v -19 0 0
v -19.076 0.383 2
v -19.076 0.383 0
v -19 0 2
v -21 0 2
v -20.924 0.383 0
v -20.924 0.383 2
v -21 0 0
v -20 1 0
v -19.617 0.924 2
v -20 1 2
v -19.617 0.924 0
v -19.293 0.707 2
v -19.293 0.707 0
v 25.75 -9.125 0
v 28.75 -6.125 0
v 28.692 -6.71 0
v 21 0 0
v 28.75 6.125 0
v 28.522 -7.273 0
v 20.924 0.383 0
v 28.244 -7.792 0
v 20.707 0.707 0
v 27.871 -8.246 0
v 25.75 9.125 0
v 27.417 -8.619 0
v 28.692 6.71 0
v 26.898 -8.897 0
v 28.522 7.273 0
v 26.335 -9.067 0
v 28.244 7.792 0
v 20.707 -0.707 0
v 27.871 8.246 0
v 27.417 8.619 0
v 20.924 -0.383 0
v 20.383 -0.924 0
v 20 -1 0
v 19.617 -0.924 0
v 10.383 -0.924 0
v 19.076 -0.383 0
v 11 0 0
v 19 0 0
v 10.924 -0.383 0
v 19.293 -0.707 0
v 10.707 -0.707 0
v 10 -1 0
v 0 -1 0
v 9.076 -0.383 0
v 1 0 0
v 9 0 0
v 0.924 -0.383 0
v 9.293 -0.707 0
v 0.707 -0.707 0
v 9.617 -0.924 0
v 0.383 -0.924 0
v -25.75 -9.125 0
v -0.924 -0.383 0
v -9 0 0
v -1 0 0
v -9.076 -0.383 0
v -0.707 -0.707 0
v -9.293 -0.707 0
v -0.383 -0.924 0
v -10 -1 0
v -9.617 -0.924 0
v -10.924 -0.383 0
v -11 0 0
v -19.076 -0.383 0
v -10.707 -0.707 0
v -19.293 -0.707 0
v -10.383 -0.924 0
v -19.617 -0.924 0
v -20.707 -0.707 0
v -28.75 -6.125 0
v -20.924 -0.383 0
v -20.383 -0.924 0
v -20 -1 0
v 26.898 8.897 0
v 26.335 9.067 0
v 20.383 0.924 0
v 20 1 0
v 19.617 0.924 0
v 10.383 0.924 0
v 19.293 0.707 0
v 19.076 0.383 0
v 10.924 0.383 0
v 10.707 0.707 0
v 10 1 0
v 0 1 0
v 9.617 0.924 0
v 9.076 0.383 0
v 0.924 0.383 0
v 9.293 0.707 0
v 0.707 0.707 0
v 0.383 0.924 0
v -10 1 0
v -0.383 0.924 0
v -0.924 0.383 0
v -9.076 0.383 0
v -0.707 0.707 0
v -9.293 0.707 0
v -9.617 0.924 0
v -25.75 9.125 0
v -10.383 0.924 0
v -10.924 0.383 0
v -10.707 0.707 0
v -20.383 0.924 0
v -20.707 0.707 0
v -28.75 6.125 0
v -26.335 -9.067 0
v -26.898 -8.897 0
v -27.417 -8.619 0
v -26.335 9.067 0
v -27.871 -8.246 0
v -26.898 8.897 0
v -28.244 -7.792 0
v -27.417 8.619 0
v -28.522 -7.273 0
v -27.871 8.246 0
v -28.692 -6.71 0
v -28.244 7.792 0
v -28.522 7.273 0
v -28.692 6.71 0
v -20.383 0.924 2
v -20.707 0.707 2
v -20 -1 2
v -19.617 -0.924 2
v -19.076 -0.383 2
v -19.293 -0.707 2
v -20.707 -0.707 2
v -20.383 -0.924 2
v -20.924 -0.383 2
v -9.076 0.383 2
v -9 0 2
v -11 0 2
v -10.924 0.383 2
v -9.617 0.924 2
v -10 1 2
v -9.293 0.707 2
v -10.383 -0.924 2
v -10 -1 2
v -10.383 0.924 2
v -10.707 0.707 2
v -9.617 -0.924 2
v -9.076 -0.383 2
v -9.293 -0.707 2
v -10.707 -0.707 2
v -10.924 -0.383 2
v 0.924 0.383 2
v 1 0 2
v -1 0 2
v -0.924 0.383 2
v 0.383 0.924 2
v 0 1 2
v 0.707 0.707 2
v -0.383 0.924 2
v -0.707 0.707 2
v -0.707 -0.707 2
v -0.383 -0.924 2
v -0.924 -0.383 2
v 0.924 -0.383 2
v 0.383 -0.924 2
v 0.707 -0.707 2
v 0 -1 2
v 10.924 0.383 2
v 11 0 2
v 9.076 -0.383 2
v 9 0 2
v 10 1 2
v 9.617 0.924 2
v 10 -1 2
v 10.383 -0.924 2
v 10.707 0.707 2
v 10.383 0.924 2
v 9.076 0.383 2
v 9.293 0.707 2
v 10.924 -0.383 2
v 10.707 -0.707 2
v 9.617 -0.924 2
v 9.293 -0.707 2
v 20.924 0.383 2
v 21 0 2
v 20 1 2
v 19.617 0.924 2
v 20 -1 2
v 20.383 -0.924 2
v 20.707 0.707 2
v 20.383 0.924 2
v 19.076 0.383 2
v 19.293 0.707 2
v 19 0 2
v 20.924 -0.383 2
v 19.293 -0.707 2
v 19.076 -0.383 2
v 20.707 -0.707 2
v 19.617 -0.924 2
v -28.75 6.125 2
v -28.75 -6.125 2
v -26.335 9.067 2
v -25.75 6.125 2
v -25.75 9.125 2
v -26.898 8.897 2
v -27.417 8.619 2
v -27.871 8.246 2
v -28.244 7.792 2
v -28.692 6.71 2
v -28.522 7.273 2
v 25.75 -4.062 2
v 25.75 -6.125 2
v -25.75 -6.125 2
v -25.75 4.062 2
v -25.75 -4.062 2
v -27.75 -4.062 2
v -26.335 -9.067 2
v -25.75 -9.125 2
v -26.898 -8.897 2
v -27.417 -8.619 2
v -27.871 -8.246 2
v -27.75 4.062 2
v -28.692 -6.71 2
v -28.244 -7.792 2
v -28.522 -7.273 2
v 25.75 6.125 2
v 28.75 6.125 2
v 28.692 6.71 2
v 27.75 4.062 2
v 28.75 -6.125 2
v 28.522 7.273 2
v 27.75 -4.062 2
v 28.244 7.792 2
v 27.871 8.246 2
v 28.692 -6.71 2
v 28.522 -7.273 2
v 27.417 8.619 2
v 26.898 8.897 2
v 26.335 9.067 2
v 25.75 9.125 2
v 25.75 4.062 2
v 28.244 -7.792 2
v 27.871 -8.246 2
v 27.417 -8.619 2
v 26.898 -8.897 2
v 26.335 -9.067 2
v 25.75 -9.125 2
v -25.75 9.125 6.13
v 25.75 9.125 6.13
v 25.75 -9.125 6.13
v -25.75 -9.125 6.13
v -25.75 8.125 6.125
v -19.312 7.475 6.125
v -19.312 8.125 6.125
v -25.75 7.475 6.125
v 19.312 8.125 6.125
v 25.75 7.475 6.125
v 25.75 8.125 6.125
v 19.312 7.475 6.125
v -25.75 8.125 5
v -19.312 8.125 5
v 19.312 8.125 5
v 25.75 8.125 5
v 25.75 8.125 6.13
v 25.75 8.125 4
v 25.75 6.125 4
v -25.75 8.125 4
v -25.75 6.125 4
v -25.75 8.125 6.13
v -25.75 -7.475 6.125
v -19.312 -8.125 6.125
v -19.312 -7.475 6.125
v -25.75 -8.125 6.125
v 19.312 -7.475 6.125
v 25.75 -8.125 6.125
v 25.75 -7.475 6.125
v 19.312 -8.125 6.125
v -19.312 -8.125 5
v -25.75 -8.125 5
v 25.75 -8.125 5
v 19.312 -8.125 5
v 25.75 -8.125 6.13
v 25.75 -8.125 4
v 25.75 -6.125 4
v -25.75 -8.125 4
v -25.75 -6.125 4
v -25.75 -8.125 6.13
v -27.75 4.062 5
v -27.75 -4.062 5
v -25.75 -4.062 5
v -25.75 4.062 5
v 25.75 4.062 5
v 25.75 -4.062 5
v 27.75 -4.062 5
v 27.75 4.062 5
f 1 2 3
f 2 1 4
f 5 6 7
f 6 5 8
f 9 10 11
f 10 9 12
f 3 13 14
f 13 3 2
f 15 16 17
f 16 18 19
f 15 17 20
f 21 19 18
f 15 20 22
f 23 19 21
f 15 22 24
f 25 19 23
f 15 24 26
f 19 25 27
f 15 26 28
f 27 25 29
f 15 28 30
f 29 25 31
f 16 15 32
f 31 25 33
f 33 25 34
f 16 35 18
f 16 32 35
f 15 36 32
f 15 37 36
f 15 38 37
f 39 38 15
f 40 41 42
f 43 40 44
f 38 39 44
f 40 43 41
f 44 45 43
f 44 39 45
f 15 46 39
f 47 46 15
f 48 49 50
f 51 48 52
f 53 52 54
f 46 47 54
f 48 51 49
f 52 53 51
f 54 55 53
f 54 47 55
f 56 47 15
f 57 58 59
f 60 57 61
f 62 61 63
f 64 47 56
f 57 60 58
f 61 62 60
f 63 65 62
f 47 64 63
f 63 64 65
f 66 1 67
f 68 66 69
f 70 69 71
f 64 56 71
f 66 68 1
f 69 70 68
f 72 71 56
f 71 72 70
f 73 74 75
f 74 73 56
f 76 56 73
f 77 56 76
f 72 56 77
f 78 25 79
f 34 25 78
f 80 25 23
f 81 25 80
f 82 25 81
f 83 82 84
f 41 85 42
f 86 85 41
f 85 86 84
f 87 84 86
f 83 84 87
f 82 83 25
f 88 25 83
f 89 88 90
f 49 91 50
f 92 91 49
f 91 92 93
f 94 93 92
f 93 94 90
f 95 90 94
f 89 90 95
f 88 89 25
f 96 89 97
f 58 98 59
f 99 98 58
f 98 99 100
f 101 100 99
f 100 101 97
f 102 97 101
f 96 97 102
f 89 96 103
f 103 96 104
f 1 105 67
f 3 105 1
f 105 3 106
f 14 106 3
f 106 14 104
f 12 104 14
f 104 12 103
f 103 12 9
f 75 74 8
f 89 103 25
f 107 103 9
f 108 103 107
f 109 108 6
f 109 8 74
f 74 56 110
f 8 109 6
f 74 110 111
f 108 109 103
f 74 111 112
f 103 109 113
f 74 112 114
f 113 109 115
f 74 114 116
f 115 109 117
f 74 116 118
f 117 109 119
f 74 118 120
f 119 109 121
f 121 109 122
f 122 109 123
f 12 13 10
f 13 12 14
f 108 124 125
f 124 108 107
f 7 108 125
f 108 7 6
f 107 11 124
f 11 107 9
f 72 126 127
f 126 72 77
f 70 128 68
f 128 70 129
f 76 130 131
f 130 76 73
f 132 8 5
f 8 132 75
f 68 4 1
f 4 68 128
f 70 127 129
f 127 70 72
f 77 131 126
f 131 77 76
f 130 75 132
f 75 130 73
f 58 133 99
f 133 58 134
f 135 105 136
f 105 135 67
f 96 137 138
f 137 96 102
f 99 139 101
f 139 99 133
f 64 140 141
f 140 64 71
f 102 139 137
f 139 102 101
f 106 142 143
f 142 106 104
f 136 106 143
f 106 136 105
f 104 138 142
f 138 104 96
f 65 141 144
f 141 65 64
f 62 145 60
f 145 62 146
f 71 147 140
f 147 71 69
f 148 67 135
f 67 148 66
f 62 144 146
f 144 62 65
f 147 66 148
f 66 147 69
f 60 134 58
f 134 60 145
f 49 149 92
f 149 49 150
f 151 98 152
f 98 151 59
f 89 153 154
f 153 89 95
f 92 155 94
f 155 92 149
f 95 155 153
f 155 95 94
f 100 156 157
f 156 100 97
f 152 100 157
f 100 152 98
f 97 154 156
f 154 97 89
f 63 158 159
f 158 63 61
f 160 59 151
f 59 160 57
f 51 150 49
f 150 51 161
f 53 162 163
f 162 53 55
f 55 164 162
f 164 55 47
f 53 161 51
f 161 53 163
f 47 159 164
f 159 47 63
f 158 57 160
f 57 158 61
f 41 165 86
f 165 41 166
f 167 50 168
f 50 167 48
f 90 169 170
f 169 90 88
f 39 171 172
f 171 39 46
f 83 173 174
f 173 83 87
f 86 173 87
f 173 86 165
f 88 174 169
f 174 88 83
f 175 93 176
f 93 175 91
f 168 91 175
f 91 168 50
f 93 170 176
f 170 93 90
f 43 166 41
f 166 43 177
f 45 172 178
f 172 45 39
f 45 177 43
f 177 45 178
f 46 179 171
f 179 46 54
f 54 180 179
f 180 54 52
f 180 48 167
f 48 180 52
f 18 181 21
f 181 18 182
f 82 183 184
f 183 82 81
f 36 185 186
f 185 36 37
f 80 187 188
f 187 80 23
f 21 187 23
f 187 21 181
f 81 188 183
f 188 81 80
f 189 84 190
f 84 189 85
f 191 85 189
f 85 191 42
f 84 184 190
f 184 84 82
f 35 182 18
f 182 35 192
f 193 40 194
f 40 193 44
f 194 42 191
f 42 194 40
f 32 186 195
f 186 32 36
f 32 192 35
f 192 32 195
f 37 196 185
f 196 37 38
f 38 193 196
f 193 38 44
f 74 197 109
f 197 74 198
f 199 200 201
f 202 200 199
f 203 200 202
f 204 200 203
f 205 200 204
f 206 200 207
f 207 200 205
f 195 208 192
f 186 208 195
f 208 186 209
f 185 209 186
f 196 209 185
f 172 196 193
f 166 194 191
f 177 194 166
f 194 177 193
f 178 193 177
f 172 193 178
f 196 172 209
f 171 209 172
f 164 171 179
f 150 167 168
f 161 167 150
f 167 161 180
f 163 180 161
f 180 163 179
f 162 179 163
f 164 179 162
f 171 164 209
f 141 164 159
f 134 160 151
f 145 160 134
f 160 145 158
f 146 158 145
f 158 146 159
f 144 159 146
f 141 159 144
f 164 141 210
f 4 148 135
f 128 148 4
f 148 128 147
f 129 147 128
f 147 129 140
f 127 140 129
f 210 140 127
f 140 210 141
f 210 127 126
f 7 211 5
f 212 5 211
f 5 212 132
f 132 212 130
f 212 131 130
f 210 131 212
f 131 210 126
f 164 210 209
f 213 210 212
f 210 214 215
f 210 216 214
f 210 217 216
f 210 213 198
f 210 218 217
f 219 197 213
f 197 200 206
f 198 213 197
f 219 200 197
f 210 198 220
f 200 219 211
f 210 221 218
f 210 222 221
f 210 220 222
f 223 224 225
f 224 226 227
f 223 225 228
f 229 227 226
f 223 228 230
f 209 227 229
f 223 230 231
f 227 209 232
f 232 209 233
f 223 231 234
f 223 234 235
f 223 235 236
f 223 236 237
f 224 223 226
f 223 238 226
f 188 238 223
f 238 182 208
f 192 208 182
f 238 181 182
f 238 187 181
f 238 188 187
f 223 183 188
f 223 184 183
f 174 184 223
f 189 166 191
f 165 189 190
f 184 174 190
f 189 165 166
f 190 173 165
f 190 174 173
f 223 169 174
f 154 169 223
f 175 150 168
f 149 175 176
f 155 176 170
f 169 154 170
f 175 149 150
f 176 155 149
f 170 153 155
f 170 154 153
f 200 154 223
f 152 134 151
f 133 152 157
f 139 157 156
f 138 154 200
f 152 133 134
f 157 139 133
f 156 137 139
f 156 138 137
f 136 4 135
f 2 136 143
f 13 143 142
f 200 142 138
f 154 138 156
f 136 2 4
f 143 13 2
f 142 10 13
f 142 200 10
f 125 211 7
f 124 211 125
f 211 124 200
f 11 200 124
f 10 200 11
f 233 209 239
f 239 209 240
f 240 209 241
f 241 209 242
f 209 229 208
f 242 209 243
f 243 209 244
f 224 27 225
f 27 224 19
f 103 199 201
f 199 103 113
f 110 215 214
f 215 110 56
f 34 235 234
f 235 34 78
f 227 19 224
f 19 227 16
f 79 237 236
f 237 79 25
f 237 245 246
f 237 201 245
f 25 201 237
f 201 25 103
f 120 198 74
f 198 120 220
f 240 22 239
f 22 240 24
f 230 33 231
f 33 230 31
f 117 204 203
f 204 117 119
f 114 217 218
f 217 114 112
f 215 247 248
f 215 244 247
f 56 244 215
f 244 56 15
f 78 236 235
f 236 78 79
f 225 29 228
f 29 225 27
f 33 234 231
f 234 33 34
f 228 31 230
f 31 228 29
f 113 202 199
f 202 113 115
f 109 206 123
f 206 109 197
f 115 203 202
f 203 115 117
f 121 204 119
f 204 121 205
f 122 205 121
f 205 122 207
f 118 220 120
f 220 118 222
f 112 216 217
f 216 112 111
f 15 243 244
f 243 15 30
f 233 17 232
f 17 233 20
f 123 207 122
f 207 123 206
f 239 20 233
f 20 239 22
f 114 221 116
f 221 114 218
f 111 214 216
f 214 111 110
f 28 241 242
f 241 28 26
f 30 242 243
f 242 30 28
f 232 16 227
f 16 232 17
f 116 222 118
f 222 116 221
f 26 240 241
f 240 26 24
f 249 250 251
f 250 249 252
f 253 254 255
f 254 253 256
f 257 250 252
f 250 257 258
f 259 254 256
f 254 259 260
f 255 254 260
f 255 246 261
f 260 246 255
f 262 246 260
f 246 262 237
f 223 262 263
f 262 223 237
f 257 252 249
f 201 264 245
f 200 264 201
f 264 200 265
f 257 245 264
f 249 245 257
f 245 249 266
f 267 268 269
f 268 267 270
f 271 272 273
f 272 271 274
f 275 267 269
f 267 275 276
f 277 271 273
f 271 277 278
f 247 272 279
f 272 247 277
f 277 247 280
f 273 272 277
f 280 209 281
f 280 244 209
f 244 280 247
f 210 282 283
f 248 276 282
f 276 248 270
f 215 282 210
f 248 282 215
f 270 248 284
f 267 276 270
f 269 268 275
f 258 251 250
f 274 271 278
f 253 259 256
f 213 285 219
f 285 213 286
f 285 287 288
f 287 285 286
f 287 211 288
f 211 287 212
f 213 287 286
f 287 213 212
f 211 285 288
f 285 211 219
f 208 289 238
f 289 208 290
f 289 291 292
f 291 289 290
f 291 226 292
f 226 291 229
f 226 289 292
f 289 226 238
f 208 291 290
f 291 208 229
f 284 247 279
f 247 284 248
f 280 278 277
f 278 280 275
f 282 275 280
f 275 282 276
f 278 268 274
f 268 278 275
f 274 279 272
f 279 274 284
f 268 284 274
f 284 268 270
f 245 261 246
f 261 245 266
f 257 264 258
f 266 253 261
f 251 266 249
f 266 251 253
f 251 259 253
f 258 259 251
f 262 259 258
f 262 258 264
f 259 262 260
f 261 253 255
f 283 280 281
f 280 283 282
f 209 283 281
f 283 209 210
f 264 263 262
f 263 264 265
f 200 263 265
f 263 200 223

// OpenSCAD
L1=51.5;
W1=16.25;

difference() {
minkowski() {
translate([-(L1)/2,-(W1-4)/2])
cube([L1,W1-4,2]);
cylinder(d=6,h=0.0001,$fn=32);

}


for(i=[-20:10:20]) {
translate([i,0,0])
cylinder(d=2,h=4,$fn=16);
}



/*
translate([L1/2,W1/2,0])
standoffh();
translate([L1/2,-W1/2,0])
standoffh();
translate([-L1/2,W1/2,0])
standoffh();
translate([-L1/2,-W1/2,0])
standoffh();*/
}

//cube([L1,W1,9], center=true);

translate([-L1/2-2,-(W1/2)/2,2])
cube([2,W1/2,3]);

translate([L1/2,-(W1/2)/2,2])
cube([2,W1/2,3]);

translate([-L1/2,-W1/2-1,0])
cube([L1,1,6.13]);
translate([-L1/2,W1/2,0])
cube([L1,1,6.13]);

translate([-L1/2,-(W1-2)/2-2,0])
cube([L1,3,4]);
translate([-L1/2,(W1-2)/2-1,0])
cube([L1,3,4]);
difference() {
    union() {
translate([0,W1/2,5.75])
rotate([0,90,0])
cylinder(d=1.5,h=L1,$fn=3,center=true);

translate([0,-W1/2,5.75])
rotate([0,90,0])
cylinder(d=1.5,h=L1,$fn=3,center=true);
    }
    
    cube([L1*3/4,W1*2,20],center=true);
}

/*
translate([-L1/2,W1/2,0])
standoff();
translate([L1/2,-W1/2,0])
standoff();
translate([-L1/2,-W1/2,0])
standoff();
translate([L1/2,W1/2,0])
standoff();*/

module standoff() {
    difference() {
        cylinder(d1=6,d2=4,h=5,$fn=64);
        cylinder(d=1.8,h=6,$fn=32);
    }
}

module standoff2() {
        cylinder(d1=6,d2=4,h=5,$fn=64);
        cylinder(d=2.1,h=6.5,$fn=32);
}

module standoffh() {

        cylinder(d=1.8,h=6,$fn=32);
}
